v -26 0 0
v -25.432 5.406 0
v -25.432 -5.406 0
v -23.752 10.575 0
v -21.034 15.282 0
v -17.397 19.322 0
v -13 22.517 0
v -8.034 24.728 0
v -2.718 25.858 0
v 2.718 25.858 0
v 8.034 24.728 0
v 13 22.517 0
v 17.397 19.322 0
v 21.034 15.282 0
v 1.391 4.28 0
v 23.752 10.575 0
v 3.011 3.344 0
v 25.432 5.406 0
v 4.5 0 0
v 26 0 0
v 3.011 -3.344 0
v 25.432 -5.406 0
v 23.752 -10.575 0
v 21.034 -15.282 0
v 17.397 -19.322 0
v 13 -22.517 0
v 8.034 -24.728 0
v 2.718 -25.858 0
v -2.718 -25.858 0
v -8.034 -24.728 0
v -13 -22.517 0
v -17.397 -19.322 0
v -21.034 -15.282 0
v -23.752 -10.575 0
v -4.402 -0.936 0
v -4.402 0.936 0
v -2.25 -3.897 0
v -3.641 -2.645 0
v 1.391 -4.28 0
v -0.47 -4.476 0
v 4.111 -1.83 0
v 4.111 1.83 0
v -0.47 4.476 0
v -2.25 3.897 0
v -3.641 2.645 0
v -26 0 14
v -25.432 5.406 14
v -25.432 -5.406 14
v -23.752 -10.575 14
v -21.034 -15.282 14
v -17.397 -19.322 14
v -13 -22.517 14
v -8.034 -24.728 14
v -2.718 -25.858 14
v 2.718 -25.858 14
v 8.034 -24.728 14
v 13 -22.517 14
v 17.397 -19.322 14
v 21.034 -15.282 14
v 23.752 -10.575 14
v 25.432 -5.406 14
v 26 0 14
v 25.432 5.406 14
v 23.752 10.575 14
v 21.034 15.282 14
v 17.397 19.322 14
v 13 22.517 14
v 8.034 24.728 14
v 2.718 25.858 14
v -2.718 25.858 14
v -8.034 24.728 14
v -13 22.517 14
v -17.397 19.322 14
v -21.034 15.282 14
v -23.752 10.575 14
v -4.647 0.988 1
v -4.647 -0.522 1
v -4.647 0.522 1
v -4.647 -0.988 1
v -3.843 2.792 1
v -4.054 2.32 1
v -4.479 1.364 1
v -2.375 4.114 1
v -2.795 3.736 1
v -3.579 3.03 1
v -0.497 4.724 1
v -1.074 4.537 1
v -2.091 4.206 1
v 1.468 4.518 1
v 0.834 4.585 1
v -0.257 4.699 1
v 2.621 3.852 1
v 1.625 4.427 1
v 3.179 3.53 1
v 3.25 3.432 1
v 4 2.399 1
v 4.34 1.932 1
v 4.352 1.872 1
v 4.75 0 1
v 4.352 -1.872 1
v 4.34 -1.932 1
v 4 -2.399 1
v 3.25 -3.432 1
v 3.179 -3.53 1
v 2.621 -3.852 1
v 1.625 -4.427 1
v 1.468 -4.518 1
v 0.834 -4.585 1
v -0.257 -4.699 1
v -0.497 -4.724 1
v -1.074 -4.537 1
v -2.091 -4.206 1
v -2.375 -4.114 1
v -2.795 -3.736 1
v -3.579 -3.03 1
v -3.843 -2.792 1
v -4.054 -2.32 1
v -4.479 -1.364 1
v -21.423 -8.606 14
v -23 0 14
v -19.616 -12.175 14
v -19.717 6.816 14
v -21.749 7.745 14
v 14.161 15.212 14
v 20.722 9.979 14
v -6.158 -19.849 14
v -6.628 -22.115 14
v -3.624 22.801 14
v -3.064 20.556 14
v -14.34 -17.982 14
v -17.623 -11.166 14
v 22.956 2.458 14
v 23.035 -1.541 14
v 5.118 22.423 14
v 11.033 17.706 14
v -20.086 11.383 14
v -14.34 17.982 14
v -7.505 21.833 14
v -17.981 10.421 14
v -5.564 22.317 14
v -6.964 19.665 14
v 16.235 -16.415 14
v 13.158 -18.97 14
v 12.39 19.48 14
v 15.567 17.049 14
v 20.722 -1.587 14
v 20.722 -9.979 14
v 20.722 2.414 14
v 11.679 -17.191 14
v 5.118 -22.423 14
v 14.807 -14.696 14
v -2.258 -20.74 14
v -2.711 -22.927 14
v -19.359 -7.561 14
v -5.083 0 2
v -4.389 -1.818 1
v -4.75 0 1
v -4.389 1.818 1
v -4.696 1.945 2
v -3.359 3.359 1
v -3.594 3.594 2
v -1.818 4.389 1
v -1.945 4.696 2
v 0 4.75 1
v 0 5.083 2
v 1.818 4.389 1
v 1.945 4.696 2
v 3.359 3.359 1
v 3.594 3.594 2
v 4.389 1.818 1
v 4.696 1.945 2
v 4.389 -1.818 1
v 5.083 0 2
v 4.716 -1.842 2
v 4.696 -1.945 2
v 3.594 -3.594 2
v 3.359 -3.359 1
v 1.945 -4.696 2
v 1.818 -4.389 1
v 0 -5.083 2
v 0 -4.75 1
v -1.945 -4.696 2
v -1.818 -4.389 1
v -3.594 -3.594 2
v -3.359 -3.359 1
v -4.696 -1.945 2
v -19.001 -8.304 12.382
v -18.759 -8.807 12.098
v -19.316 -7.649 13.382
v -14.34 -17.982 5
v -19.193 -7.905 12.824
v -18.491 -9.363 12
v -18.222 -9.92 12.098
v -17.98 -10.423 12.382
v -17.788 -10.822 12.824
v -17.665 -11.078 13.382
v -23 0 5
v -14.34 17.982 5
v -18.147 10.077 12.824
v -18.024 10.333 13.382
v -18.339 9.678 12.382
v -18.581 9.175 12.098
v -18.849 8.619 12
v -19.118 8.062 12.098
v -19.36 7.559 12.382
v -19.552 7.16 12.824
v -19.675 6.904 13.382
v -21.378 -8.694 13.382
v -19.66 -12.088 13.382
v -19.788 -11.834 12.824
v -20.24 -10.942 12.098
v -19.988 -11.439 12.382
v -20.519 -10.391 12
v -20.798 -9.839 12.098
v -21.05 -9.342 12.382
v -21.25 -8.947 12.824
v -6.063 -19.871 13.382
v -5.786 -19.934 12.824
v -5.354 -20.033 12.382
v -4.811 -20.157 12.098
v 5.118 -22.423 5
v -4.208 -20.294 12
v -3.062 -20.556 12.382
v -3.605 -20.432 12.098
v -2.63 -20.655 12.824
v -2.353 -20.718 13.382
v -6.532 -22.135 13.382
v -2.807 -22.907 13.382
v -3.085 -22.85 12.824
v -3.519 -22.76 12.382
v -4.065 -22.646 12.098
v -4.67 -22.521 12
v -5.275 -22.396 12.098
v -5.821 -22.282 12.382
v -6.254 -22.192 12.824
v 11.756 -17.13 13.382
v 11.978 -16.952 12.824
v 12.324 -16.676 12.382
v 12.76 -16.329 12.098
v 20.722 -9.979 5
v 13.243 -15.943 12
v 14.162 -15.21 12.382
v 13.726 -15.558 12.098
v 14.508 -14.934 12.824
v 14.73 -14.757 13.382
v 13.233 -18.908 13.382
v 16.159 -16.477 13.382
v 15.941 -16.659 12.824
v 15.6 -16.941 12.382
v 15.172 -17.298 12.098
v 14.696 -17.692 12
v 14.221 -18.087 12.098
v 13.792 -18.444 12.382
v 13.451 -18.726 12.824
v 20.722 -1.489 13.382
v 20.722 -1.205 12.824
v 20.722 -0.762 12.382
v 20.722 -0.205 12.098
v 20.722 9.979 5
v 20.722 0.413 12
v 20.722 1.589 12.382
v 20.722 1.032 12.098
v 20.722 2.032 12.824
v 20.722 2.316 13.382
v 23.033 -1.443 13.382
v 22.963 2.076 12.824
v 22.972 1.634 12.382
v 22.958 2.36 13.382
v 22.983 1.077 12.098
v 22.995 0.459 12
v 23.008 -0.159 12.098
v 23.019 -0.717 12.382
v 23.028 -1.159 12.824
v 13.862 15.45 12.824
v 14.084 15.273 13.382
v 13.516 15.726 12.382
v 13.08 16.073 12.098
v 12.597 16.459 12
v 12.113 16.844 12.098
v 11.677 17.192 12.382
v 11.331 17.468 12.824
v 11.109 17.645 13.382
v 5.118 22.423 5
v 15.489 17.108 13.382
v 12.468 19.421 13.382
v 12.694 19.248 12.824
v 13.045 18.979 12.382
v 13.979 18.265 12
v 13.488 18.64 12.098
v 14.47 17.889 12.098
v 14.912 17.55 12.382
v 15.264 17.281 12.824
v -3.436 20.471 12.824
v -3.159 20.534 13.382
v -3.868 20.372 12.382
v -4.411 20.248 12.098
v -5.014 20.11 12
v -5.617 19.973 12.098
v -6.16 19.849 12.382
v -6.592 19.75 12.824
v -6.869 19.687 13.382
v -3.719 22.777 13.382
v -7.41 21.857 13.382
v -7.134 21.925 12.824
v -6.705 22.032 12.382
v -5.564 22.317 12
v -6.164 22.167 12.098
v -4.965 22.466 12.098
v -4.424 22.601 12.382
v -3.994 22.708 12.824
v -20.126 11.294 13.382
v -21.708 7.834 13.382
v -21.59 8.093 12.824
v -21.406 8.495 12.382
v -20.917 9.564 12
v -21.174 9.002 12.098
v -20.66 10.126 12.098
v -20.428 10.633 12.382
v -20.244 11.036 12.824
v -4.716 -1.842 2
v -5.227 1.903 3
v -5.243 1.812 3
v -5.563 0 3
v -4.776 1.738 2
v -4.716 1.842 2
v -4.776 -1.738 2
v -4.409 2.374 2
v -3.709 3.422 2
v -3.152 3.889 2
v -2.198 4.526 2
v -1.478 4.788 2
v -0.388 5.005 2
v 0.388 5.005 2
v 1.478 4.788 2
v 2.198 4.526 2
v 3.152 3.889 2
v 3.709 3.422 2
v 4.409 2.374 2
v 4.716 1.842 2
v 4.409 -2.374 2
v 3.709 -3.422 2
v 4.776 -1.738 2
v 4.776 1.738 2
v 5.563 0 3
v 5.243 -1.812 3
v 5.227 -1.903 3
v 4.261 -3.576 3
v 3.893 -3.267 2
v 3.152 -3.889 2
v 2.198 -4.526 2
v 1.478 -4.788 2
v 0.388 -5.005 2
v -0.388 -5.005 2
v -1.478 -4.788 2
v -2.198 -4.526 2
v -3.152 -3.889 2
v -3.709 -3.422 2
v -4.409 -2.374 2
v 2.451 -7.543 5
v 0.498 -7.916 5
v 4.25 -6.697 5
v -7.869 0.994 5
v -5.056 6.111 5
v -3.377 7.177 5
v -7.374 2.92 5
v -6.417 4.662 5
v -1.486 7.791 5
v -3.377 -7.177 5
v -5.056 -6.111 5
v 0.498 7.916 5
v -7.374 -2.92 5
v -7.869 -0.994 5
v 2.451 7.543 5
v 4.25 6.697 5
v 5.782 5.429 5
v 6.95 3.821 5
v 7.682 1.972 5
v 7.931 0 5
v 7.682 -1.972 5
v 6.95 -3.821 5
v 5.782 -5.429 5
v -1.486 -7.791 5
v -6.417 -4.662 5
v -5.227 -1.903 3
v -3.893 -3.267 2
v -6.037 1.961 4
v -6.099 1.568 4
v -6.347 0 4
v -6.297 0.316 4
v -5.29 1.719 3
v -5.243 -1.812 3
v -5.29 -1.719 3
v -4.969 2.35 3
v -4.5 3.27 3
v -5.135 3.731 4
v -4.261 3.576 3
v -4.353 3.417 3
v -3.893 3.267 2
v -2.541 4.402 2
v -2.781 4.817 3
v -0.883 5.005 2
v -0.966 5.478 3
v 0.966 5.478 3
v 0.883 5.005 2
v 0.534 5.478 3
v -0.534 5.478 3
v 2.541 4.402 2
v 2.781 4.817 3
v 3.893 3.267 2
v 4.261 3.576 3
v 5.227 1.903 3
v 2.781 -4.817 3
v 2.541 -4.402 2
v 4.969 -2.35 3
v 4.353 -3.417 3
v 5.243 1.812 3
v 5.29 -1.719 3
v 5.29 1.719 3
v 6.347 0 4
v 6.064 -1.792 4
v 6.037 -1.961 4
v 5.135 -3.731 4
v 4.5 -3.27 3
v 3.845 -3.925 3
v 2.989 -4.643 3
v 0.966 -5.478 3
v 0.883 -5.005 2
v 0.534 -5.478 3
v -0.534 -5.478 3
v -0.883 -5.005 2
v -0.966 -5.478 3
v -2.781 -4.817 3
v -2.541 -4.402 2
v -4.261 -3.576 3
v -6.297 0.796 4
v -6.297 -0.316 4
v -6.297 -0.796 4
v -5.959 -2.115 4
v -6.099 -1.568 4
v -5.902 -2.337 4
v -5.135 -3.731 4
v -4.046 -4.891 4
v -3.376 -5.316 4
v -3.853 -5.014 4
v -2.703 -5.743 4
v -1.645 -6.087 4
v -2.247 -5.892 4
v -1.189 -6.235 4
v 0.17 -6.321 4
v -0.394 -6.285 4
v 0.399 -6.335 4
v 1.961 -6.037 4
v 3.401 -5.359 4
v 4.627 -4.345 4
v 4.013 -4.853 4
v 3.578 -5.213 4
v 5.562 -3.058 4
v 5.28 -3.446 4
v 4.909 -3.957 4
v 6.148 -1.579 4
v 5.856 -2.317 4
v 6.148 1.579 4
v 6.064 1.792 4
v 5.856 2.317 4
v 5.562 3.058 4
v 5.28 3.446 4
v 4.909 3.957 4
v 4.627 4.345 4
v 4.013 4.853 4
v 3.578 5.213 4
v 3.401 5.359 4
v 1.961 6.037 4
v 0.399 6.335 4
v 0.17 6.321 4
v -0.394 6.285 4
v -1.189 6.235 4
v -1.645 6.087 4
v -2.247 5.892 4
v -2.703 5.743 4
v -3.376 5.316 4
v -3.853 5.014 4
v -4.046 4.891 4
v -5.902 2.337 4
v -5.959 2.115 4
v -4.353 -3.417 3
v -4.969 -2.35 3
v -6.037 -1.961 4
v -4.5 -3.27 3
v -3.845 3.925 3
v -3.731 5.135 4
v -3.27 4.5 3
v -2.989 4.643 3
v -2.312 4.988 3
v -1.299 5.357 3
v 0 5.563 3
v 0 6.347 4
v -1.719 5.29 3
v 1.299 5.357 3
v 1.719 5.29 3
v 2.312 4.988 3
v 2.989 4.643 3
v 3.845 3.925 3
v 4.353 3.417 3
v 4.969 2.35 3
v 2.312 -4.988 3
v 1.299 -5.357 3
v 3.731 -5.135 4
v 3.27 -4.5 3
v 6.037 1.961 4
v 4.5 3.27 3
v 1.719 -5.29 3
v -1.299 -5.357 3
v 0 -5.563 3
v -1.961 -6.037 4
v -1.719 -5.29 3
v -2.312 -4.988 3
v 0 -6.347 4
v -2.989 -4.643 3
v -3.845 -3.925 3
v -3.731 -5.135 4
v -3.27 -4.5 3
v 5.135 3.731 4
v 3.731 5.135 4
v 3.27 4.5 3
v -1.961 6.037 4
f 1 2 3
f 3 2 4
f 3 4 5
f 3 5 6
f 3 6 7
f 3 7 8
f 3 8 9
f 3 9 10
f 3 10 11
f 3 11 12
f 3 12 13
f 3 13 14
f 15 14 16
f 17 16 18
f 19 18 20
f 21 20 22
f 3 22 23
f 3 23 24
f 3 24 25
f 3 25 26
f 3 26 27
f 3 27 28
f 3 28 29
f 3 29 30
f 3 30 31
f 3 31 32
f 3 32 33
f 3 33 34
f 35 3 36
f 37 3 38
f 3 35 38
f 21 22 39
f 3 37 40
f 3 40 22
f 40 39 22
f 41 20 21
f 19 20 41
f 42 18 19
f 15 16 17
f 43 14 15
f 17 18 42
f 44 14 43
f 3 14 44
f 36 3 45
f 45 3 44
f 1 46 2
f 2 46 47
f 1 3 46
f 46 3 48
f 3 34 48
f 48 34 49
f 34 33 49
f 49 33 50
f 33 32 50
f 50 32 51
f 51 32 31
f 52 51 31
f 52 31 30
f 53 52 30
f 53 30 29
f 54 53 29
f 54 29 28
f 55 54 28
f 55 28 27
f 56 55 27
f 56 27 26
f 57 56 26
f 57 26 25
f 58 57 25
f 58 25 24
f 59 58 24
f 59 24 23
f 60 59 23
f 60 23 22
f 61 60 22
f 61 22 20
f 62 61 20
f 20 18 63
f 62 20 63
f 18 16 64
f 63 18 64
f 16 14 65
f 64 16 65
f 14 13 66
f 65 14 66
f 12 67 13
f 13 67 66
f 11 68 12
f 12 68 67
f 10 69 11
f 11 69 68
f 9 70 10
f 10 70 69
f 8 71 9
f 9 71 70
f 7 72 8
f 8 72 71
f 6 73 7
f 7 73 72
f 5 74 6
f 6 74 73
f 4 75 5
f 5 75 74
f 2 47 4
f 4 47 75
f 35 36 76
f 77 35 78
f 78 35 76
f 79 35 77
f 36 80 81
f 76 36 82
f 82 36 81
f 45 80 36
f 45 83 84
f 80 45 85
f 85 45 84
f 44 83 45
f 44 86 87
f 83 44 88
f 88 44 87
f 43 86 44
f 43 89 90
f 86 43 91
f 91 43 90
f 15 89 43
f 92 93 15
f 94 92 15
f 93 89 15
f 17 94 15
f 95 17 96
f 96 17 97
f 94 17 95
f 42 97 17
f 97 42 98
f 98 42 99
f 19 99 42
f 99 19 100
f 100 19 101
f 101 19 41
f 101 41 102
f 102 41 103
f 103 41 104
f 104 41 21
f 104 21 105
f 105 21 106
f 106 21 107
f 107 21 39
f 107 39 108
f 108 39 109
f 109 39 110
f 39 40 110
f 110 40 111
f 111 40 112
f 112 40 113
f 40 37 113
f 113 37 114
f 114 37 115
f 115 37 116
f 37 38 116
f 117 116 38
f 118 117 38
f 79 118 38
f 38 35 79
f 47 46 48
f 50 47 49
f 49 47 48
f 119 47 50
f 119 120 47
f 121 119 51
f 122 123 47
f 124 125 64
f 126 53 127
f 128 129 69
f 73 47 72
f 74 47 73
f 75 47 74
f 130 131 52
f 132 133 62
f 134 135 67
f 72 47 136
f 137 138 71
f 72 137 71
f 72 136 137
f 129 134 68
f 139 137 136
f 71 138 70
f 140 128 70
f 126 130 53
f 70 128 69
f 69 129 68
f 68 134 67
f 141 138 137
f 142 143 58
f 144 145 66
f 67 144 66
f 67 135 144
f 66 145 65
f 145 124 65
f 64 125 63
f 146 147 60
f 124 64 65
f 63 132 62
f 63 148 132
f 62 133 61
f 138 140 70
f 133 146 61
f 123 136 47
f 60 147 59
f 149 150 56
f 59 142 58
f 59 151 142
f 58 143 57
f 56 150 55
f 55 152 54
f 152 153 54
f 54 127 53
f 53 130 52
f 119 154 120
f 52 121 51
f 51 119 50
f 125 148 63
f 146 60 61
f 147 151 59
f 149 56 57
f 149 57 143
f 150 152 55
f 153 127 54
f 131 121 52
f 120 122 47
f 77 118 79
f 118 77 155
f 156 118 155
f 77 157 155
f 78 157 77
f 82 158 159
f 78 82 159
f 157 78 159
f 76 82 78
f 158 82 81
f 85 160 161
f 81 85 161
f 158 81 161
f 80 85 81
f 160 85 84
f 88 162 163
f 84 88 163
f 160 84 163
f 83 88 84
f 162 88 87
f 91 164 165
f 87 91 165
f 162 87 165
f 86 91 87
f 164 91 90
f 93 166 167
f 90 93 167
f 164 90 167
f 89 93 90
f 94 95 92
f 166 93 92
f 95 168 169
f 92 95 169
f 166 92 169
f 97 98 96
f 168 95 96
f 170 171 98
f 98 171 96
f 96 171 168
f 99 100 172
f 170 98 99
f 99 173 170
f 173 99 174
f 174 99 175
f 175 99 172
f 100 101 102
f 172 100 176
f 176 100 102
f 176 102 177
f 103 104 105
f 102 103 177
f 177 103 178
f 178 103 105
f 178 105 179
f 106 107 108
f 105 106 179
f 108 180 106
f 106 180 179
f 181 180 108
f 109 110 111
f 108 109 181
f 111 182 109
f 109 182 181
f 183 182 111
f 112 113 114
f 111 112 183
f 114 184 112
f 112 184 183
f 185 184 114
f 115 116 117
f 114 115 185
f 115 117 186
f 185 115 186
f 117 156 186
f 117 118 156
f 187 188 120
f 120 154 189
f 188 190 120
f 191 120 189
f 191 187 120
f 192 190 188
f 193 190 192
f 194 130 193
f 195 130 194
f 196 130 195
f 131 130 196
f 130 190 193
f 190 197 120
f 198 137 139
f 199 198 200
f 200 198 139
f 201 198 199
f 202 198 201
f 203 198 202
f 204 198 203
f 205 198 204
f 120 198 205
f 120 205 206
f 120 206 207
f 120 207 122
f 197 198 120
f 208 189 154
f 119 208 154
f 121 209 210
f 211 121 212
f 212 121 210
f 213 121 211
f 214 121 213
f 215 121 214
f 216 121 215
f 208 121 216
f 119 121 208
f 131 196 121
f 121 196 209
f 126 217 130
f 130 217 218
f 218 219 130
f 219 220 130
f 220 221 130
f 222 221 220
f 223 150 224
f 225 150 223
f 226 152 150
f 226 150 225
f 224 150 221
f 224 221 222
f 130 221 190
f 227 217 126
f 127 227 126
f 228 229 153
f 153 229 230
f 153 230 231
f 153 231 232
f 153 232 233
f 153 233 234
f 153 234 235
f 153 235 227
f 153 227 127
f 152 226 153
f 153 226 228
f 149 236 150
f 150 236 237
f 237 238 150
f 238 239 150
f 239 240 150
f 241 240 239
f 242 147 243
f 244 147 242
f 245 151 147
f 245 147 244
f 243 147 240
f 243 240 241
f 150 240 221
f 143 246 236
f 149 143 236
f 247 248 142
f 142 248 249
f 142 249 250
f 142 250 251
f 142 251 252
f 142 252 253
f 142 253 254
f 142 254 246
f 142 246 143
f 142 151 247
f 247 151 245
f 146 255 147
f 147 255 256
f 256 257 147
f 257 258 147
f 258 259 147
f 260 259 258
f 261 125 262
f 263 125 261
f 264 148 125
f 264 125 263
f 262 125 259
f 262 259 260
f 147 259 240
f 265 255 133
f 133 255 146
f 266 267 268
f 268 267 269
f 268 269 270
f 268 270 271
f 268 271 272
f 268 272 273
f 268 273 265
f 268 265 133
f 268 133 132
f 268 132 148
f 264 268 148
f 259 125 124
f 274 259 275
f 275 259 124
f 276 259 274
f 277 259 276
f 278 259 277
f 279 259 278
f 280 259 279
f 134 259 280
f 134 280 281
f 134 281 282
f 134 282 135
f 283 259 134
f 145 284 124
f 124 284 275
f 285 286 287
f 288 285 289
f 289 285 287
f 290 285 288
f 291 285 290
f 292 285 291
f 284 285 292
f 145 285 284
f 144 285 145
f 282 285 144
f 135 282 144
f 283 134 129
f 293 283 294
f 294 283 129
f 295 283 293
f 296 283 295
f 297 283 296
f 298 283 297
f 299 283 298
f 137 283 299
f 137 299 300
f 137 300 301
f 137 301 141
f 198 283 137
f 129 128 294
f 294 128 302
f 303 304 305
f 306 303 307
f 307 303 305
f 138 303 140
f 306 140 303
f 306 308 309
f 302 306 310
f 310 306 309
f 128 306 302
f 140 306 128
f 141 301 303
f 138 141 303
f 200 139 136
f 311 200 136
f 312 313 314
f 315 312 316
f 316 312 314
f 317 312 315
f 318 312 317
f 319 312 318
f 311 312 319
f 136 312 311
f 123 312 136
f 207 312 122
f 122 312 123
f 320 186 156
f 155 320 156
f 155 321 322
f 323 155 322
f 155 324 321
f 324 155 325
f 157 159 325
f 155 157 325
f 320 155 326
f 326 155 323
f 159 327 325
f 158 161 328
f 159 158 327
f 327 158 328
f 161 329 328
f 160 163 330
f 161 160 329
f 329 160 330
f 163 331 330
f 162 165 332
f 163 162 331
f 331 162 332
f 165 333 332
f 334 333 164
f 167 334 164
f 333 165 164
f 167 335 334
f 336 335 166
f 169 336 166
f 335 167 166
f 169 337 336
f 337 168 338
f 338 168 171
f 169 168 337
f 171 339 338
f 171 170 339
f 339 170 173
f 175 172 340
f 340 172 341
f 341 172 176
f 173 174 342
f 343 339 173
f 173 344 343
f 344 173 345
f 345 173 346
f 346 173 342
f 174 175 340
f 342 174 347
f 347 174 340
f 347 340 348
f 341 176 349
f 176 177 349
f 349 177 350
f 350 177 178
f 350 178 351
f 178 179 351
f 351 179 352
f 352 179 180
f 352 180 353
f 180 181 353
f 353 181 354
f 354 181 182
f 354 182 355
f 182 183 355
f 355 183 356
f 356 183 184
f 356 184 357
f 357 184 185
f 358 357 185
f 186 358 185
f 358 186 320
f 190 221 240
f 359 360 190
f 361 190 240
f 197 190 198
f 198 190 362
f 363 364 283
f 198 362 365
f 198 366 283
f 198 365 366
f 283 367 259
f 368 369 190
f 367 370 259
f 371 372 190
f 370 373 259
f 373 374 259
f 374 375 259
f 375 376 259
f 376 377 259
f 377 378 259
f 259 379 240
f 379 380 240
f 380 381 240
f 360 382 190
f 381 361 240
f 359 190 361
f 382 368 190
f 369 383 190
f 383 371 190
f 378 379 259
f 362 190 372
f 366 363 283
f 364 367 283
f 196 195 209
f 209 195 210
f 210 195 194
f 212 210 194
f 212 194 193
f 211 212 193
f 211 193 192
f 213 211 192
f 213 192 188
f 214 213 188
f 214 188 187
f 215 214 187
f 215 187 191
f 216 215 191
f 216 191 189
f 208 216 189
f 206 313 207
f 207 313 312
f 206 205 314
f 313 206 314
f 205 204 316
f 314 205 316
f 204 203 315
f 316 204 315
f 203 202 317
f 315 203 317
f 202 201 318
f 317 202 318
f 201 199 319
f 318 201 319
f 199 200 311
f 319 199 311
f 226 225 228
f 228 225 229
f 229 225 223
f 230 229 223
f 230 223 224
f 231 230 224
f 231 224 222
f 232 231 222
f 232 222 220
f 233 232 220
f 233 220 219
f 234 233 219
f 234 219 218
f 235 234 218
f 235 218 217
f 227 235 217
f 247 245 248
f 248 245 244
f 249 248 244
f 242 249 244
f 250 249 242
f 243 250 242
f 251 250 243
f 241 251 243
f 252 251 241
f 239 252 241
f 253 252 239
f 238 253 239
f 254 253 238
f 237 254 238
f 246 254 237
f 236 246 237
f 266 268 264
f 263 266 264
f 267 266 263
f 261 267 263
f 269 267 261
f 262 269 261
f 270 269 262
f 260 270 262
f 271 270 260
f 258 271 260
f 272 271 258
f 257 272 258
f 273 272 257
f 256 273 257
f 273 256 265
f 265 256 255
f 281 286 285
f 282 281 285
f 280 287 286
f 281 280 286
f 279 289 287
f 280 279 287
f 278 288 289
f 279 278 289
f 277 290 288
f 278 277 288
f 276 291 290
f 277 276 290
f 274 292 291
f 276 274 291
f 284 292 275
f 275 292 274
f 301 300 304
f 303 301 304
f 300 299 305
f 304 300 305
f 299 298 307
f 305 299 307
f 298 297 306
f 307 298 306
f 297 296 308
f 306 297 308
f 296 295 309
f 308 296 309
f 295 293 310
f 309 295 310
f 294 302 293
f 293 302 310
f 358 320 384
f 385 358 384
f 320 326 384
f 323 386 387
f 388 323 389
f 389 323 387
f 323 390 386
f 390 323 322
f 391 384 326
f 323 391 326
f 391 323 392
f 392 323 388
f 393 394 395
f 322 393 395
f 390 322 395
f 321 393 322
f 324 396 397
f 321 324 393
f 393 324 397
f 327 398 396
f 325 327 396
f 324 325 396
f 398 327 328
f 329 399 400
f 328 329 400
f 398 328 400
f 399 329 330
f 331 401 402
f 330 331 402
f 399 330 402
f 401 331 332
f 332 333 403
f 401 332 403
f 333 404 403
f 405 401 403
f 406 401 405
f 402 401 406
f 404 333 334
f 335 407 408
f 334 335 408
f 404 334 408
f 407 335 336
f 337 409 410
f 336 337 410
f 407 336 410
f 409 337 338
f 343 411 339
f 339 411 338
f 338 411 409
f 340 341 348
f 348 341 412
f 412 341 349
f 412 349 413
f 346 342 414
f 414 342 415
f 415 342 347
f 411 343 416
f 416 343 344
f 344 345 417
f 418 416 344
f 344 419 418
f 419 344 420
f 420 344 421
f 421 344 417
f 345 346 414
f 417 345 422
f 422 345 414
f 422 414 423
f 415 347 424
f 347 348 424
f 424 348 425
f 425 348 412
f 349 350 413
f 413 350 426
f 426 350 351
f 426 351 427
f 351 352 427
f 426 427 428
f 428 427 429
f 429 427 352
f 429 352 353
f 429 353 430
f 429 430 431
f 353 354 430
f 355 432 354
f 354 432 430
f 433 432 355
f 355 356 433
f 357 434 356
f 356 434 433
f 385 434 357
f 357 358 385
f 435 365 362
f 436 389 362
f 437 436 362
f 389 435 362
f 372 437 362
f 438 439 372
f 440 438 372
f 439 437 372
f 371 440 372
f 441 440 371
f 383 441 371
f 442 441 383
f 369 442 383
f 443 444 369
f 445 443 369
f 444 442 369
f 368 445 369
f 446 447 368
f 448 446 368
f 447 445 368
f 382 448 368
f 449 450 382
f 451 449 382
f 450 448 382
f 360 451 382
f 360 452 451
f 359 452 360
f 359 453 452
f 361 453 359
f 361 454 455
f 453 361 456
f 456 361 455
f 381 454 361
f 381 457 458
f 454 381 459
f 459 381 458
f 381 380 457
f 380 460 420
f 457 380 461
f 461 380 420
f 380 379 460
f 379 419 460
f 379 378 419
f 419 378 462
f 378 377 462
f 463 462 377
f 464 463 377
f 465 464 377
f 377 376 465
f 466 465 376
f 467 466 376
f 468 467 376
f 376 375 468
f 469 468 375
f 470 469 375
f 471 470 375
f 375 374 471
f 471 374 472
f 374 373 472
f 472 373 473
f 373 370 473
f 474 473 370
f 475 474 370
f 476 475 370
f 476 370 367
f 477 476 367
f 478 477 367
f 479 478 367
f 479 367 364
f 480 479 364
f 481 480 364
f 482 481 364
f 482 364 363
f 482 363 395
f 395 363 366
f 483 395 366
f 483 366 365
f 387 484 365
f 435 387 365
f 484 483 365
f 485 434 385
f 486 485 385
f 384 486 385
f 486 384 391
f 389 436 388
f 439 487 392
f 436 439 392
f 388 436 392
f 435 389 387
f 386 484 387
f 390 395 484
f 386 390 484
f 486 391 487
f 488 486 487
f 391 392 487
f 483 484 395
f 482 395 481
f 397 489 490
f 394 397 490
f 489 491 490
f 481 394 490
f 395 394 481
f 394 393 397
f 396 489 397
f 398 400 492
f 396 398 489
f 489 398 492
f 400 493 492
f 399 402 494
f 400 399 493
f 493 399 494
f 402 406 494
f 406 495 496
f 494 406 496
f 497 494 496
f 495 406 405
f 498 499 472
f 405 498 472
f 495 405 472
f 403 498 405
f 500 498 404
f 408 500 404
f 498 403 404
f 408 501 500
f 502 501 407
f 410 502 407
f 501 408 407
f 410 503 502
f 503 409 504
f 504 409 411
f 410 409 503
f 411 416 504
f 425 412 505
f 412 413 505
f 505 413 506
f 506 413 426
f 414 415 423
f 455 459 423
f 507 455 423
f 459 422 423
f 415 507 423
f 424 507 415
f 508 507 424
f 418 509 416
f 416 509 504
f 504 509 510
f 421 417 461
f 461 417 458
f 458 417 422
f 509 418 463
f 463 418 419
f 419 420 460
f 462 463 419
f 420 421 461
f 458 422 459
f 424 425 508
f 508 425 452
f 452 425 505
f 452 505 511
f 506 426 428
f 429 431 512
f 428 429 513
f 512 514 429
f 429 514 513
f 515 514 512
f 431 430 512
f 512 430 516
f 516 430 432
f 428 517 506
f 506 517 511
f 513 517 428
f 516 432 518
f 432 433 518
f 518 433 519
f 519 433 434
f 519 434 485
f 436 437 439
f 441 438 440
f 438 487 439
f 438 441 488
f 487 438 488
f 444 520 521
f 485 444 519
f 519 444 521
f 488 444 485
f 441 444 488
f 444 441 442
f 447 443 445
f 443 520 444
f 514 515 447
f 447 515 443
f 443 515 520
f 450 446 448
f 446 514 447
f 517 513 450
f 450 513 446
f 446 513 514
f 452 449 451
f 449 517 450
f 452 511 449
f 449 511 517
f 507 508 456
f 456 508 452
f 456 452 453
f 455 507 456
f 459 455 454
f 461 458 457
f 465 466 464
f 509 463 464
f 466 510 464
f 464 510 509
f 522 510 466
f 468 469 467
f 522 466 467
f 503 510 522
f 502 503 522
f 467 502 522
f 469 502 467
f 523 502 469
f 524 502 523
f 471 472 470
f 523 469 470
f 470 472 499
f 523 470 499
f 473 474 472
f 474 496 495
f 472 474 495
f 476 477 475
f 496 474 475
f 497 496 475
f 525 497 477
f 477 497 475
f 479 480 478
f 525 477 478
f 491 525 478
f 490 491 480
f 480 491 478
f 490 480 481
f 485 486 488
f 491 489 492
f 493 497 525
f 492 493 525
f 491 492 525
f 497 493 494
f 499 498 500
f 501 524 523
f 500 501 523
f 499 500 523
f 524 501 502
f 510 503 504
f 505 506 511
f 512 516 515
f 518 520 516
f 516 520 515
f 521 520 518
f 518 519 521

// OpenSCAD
use<MCAD/2Dshapes.scad>

numbgears=7;
holerad=23;//should be axle gear rad+some extra. Will take some fiddling to find out exactly how much bigger.
shaftsize=4;//radius obviously...
caserad=holerad+3;//The radius of the outside of the case

basethick=5;//how thick the base is.
height=basethick+9;//How tall one half is.

pinrad=2;//How thick the pins that hold the gears to the body are
pinrot=14;//Edit this manually until the pins line up with the sides. I really should figure out how to do this automatically, or perhaps just rewrite ngon so it uses the same rotation method. For 7 sides it's 15

difference()
{
	cylinder(h = height, r=caserad);
	translate([0,0,basethick]){
		linear_extrude(height=height)ngon(numbgears,holerad);
	}
	translate([0,0,-1])cylinder(h = basethick+2, r=shaftsize);

	//This creates the holes for all the pins.
	rotate([0,0,pinrot])translate([0,0,height])for ( i = [0 : numbgears] )
	{
	    rotate( i * 360 / numbgears, [0, 0, 1])
	    translate([0, caserad-(caserad-holerad), 0])
	    rotate([90,0,0])cylinder(h = basethick+2, r=pinrad,$fn=20);
	}
for(i=[1:10]){
		translate([0,0,i-6])cylinder(h=1,r1=tan(i*7)+3.6,r2=tan((i+1)*7)+3.6);
	}

}
